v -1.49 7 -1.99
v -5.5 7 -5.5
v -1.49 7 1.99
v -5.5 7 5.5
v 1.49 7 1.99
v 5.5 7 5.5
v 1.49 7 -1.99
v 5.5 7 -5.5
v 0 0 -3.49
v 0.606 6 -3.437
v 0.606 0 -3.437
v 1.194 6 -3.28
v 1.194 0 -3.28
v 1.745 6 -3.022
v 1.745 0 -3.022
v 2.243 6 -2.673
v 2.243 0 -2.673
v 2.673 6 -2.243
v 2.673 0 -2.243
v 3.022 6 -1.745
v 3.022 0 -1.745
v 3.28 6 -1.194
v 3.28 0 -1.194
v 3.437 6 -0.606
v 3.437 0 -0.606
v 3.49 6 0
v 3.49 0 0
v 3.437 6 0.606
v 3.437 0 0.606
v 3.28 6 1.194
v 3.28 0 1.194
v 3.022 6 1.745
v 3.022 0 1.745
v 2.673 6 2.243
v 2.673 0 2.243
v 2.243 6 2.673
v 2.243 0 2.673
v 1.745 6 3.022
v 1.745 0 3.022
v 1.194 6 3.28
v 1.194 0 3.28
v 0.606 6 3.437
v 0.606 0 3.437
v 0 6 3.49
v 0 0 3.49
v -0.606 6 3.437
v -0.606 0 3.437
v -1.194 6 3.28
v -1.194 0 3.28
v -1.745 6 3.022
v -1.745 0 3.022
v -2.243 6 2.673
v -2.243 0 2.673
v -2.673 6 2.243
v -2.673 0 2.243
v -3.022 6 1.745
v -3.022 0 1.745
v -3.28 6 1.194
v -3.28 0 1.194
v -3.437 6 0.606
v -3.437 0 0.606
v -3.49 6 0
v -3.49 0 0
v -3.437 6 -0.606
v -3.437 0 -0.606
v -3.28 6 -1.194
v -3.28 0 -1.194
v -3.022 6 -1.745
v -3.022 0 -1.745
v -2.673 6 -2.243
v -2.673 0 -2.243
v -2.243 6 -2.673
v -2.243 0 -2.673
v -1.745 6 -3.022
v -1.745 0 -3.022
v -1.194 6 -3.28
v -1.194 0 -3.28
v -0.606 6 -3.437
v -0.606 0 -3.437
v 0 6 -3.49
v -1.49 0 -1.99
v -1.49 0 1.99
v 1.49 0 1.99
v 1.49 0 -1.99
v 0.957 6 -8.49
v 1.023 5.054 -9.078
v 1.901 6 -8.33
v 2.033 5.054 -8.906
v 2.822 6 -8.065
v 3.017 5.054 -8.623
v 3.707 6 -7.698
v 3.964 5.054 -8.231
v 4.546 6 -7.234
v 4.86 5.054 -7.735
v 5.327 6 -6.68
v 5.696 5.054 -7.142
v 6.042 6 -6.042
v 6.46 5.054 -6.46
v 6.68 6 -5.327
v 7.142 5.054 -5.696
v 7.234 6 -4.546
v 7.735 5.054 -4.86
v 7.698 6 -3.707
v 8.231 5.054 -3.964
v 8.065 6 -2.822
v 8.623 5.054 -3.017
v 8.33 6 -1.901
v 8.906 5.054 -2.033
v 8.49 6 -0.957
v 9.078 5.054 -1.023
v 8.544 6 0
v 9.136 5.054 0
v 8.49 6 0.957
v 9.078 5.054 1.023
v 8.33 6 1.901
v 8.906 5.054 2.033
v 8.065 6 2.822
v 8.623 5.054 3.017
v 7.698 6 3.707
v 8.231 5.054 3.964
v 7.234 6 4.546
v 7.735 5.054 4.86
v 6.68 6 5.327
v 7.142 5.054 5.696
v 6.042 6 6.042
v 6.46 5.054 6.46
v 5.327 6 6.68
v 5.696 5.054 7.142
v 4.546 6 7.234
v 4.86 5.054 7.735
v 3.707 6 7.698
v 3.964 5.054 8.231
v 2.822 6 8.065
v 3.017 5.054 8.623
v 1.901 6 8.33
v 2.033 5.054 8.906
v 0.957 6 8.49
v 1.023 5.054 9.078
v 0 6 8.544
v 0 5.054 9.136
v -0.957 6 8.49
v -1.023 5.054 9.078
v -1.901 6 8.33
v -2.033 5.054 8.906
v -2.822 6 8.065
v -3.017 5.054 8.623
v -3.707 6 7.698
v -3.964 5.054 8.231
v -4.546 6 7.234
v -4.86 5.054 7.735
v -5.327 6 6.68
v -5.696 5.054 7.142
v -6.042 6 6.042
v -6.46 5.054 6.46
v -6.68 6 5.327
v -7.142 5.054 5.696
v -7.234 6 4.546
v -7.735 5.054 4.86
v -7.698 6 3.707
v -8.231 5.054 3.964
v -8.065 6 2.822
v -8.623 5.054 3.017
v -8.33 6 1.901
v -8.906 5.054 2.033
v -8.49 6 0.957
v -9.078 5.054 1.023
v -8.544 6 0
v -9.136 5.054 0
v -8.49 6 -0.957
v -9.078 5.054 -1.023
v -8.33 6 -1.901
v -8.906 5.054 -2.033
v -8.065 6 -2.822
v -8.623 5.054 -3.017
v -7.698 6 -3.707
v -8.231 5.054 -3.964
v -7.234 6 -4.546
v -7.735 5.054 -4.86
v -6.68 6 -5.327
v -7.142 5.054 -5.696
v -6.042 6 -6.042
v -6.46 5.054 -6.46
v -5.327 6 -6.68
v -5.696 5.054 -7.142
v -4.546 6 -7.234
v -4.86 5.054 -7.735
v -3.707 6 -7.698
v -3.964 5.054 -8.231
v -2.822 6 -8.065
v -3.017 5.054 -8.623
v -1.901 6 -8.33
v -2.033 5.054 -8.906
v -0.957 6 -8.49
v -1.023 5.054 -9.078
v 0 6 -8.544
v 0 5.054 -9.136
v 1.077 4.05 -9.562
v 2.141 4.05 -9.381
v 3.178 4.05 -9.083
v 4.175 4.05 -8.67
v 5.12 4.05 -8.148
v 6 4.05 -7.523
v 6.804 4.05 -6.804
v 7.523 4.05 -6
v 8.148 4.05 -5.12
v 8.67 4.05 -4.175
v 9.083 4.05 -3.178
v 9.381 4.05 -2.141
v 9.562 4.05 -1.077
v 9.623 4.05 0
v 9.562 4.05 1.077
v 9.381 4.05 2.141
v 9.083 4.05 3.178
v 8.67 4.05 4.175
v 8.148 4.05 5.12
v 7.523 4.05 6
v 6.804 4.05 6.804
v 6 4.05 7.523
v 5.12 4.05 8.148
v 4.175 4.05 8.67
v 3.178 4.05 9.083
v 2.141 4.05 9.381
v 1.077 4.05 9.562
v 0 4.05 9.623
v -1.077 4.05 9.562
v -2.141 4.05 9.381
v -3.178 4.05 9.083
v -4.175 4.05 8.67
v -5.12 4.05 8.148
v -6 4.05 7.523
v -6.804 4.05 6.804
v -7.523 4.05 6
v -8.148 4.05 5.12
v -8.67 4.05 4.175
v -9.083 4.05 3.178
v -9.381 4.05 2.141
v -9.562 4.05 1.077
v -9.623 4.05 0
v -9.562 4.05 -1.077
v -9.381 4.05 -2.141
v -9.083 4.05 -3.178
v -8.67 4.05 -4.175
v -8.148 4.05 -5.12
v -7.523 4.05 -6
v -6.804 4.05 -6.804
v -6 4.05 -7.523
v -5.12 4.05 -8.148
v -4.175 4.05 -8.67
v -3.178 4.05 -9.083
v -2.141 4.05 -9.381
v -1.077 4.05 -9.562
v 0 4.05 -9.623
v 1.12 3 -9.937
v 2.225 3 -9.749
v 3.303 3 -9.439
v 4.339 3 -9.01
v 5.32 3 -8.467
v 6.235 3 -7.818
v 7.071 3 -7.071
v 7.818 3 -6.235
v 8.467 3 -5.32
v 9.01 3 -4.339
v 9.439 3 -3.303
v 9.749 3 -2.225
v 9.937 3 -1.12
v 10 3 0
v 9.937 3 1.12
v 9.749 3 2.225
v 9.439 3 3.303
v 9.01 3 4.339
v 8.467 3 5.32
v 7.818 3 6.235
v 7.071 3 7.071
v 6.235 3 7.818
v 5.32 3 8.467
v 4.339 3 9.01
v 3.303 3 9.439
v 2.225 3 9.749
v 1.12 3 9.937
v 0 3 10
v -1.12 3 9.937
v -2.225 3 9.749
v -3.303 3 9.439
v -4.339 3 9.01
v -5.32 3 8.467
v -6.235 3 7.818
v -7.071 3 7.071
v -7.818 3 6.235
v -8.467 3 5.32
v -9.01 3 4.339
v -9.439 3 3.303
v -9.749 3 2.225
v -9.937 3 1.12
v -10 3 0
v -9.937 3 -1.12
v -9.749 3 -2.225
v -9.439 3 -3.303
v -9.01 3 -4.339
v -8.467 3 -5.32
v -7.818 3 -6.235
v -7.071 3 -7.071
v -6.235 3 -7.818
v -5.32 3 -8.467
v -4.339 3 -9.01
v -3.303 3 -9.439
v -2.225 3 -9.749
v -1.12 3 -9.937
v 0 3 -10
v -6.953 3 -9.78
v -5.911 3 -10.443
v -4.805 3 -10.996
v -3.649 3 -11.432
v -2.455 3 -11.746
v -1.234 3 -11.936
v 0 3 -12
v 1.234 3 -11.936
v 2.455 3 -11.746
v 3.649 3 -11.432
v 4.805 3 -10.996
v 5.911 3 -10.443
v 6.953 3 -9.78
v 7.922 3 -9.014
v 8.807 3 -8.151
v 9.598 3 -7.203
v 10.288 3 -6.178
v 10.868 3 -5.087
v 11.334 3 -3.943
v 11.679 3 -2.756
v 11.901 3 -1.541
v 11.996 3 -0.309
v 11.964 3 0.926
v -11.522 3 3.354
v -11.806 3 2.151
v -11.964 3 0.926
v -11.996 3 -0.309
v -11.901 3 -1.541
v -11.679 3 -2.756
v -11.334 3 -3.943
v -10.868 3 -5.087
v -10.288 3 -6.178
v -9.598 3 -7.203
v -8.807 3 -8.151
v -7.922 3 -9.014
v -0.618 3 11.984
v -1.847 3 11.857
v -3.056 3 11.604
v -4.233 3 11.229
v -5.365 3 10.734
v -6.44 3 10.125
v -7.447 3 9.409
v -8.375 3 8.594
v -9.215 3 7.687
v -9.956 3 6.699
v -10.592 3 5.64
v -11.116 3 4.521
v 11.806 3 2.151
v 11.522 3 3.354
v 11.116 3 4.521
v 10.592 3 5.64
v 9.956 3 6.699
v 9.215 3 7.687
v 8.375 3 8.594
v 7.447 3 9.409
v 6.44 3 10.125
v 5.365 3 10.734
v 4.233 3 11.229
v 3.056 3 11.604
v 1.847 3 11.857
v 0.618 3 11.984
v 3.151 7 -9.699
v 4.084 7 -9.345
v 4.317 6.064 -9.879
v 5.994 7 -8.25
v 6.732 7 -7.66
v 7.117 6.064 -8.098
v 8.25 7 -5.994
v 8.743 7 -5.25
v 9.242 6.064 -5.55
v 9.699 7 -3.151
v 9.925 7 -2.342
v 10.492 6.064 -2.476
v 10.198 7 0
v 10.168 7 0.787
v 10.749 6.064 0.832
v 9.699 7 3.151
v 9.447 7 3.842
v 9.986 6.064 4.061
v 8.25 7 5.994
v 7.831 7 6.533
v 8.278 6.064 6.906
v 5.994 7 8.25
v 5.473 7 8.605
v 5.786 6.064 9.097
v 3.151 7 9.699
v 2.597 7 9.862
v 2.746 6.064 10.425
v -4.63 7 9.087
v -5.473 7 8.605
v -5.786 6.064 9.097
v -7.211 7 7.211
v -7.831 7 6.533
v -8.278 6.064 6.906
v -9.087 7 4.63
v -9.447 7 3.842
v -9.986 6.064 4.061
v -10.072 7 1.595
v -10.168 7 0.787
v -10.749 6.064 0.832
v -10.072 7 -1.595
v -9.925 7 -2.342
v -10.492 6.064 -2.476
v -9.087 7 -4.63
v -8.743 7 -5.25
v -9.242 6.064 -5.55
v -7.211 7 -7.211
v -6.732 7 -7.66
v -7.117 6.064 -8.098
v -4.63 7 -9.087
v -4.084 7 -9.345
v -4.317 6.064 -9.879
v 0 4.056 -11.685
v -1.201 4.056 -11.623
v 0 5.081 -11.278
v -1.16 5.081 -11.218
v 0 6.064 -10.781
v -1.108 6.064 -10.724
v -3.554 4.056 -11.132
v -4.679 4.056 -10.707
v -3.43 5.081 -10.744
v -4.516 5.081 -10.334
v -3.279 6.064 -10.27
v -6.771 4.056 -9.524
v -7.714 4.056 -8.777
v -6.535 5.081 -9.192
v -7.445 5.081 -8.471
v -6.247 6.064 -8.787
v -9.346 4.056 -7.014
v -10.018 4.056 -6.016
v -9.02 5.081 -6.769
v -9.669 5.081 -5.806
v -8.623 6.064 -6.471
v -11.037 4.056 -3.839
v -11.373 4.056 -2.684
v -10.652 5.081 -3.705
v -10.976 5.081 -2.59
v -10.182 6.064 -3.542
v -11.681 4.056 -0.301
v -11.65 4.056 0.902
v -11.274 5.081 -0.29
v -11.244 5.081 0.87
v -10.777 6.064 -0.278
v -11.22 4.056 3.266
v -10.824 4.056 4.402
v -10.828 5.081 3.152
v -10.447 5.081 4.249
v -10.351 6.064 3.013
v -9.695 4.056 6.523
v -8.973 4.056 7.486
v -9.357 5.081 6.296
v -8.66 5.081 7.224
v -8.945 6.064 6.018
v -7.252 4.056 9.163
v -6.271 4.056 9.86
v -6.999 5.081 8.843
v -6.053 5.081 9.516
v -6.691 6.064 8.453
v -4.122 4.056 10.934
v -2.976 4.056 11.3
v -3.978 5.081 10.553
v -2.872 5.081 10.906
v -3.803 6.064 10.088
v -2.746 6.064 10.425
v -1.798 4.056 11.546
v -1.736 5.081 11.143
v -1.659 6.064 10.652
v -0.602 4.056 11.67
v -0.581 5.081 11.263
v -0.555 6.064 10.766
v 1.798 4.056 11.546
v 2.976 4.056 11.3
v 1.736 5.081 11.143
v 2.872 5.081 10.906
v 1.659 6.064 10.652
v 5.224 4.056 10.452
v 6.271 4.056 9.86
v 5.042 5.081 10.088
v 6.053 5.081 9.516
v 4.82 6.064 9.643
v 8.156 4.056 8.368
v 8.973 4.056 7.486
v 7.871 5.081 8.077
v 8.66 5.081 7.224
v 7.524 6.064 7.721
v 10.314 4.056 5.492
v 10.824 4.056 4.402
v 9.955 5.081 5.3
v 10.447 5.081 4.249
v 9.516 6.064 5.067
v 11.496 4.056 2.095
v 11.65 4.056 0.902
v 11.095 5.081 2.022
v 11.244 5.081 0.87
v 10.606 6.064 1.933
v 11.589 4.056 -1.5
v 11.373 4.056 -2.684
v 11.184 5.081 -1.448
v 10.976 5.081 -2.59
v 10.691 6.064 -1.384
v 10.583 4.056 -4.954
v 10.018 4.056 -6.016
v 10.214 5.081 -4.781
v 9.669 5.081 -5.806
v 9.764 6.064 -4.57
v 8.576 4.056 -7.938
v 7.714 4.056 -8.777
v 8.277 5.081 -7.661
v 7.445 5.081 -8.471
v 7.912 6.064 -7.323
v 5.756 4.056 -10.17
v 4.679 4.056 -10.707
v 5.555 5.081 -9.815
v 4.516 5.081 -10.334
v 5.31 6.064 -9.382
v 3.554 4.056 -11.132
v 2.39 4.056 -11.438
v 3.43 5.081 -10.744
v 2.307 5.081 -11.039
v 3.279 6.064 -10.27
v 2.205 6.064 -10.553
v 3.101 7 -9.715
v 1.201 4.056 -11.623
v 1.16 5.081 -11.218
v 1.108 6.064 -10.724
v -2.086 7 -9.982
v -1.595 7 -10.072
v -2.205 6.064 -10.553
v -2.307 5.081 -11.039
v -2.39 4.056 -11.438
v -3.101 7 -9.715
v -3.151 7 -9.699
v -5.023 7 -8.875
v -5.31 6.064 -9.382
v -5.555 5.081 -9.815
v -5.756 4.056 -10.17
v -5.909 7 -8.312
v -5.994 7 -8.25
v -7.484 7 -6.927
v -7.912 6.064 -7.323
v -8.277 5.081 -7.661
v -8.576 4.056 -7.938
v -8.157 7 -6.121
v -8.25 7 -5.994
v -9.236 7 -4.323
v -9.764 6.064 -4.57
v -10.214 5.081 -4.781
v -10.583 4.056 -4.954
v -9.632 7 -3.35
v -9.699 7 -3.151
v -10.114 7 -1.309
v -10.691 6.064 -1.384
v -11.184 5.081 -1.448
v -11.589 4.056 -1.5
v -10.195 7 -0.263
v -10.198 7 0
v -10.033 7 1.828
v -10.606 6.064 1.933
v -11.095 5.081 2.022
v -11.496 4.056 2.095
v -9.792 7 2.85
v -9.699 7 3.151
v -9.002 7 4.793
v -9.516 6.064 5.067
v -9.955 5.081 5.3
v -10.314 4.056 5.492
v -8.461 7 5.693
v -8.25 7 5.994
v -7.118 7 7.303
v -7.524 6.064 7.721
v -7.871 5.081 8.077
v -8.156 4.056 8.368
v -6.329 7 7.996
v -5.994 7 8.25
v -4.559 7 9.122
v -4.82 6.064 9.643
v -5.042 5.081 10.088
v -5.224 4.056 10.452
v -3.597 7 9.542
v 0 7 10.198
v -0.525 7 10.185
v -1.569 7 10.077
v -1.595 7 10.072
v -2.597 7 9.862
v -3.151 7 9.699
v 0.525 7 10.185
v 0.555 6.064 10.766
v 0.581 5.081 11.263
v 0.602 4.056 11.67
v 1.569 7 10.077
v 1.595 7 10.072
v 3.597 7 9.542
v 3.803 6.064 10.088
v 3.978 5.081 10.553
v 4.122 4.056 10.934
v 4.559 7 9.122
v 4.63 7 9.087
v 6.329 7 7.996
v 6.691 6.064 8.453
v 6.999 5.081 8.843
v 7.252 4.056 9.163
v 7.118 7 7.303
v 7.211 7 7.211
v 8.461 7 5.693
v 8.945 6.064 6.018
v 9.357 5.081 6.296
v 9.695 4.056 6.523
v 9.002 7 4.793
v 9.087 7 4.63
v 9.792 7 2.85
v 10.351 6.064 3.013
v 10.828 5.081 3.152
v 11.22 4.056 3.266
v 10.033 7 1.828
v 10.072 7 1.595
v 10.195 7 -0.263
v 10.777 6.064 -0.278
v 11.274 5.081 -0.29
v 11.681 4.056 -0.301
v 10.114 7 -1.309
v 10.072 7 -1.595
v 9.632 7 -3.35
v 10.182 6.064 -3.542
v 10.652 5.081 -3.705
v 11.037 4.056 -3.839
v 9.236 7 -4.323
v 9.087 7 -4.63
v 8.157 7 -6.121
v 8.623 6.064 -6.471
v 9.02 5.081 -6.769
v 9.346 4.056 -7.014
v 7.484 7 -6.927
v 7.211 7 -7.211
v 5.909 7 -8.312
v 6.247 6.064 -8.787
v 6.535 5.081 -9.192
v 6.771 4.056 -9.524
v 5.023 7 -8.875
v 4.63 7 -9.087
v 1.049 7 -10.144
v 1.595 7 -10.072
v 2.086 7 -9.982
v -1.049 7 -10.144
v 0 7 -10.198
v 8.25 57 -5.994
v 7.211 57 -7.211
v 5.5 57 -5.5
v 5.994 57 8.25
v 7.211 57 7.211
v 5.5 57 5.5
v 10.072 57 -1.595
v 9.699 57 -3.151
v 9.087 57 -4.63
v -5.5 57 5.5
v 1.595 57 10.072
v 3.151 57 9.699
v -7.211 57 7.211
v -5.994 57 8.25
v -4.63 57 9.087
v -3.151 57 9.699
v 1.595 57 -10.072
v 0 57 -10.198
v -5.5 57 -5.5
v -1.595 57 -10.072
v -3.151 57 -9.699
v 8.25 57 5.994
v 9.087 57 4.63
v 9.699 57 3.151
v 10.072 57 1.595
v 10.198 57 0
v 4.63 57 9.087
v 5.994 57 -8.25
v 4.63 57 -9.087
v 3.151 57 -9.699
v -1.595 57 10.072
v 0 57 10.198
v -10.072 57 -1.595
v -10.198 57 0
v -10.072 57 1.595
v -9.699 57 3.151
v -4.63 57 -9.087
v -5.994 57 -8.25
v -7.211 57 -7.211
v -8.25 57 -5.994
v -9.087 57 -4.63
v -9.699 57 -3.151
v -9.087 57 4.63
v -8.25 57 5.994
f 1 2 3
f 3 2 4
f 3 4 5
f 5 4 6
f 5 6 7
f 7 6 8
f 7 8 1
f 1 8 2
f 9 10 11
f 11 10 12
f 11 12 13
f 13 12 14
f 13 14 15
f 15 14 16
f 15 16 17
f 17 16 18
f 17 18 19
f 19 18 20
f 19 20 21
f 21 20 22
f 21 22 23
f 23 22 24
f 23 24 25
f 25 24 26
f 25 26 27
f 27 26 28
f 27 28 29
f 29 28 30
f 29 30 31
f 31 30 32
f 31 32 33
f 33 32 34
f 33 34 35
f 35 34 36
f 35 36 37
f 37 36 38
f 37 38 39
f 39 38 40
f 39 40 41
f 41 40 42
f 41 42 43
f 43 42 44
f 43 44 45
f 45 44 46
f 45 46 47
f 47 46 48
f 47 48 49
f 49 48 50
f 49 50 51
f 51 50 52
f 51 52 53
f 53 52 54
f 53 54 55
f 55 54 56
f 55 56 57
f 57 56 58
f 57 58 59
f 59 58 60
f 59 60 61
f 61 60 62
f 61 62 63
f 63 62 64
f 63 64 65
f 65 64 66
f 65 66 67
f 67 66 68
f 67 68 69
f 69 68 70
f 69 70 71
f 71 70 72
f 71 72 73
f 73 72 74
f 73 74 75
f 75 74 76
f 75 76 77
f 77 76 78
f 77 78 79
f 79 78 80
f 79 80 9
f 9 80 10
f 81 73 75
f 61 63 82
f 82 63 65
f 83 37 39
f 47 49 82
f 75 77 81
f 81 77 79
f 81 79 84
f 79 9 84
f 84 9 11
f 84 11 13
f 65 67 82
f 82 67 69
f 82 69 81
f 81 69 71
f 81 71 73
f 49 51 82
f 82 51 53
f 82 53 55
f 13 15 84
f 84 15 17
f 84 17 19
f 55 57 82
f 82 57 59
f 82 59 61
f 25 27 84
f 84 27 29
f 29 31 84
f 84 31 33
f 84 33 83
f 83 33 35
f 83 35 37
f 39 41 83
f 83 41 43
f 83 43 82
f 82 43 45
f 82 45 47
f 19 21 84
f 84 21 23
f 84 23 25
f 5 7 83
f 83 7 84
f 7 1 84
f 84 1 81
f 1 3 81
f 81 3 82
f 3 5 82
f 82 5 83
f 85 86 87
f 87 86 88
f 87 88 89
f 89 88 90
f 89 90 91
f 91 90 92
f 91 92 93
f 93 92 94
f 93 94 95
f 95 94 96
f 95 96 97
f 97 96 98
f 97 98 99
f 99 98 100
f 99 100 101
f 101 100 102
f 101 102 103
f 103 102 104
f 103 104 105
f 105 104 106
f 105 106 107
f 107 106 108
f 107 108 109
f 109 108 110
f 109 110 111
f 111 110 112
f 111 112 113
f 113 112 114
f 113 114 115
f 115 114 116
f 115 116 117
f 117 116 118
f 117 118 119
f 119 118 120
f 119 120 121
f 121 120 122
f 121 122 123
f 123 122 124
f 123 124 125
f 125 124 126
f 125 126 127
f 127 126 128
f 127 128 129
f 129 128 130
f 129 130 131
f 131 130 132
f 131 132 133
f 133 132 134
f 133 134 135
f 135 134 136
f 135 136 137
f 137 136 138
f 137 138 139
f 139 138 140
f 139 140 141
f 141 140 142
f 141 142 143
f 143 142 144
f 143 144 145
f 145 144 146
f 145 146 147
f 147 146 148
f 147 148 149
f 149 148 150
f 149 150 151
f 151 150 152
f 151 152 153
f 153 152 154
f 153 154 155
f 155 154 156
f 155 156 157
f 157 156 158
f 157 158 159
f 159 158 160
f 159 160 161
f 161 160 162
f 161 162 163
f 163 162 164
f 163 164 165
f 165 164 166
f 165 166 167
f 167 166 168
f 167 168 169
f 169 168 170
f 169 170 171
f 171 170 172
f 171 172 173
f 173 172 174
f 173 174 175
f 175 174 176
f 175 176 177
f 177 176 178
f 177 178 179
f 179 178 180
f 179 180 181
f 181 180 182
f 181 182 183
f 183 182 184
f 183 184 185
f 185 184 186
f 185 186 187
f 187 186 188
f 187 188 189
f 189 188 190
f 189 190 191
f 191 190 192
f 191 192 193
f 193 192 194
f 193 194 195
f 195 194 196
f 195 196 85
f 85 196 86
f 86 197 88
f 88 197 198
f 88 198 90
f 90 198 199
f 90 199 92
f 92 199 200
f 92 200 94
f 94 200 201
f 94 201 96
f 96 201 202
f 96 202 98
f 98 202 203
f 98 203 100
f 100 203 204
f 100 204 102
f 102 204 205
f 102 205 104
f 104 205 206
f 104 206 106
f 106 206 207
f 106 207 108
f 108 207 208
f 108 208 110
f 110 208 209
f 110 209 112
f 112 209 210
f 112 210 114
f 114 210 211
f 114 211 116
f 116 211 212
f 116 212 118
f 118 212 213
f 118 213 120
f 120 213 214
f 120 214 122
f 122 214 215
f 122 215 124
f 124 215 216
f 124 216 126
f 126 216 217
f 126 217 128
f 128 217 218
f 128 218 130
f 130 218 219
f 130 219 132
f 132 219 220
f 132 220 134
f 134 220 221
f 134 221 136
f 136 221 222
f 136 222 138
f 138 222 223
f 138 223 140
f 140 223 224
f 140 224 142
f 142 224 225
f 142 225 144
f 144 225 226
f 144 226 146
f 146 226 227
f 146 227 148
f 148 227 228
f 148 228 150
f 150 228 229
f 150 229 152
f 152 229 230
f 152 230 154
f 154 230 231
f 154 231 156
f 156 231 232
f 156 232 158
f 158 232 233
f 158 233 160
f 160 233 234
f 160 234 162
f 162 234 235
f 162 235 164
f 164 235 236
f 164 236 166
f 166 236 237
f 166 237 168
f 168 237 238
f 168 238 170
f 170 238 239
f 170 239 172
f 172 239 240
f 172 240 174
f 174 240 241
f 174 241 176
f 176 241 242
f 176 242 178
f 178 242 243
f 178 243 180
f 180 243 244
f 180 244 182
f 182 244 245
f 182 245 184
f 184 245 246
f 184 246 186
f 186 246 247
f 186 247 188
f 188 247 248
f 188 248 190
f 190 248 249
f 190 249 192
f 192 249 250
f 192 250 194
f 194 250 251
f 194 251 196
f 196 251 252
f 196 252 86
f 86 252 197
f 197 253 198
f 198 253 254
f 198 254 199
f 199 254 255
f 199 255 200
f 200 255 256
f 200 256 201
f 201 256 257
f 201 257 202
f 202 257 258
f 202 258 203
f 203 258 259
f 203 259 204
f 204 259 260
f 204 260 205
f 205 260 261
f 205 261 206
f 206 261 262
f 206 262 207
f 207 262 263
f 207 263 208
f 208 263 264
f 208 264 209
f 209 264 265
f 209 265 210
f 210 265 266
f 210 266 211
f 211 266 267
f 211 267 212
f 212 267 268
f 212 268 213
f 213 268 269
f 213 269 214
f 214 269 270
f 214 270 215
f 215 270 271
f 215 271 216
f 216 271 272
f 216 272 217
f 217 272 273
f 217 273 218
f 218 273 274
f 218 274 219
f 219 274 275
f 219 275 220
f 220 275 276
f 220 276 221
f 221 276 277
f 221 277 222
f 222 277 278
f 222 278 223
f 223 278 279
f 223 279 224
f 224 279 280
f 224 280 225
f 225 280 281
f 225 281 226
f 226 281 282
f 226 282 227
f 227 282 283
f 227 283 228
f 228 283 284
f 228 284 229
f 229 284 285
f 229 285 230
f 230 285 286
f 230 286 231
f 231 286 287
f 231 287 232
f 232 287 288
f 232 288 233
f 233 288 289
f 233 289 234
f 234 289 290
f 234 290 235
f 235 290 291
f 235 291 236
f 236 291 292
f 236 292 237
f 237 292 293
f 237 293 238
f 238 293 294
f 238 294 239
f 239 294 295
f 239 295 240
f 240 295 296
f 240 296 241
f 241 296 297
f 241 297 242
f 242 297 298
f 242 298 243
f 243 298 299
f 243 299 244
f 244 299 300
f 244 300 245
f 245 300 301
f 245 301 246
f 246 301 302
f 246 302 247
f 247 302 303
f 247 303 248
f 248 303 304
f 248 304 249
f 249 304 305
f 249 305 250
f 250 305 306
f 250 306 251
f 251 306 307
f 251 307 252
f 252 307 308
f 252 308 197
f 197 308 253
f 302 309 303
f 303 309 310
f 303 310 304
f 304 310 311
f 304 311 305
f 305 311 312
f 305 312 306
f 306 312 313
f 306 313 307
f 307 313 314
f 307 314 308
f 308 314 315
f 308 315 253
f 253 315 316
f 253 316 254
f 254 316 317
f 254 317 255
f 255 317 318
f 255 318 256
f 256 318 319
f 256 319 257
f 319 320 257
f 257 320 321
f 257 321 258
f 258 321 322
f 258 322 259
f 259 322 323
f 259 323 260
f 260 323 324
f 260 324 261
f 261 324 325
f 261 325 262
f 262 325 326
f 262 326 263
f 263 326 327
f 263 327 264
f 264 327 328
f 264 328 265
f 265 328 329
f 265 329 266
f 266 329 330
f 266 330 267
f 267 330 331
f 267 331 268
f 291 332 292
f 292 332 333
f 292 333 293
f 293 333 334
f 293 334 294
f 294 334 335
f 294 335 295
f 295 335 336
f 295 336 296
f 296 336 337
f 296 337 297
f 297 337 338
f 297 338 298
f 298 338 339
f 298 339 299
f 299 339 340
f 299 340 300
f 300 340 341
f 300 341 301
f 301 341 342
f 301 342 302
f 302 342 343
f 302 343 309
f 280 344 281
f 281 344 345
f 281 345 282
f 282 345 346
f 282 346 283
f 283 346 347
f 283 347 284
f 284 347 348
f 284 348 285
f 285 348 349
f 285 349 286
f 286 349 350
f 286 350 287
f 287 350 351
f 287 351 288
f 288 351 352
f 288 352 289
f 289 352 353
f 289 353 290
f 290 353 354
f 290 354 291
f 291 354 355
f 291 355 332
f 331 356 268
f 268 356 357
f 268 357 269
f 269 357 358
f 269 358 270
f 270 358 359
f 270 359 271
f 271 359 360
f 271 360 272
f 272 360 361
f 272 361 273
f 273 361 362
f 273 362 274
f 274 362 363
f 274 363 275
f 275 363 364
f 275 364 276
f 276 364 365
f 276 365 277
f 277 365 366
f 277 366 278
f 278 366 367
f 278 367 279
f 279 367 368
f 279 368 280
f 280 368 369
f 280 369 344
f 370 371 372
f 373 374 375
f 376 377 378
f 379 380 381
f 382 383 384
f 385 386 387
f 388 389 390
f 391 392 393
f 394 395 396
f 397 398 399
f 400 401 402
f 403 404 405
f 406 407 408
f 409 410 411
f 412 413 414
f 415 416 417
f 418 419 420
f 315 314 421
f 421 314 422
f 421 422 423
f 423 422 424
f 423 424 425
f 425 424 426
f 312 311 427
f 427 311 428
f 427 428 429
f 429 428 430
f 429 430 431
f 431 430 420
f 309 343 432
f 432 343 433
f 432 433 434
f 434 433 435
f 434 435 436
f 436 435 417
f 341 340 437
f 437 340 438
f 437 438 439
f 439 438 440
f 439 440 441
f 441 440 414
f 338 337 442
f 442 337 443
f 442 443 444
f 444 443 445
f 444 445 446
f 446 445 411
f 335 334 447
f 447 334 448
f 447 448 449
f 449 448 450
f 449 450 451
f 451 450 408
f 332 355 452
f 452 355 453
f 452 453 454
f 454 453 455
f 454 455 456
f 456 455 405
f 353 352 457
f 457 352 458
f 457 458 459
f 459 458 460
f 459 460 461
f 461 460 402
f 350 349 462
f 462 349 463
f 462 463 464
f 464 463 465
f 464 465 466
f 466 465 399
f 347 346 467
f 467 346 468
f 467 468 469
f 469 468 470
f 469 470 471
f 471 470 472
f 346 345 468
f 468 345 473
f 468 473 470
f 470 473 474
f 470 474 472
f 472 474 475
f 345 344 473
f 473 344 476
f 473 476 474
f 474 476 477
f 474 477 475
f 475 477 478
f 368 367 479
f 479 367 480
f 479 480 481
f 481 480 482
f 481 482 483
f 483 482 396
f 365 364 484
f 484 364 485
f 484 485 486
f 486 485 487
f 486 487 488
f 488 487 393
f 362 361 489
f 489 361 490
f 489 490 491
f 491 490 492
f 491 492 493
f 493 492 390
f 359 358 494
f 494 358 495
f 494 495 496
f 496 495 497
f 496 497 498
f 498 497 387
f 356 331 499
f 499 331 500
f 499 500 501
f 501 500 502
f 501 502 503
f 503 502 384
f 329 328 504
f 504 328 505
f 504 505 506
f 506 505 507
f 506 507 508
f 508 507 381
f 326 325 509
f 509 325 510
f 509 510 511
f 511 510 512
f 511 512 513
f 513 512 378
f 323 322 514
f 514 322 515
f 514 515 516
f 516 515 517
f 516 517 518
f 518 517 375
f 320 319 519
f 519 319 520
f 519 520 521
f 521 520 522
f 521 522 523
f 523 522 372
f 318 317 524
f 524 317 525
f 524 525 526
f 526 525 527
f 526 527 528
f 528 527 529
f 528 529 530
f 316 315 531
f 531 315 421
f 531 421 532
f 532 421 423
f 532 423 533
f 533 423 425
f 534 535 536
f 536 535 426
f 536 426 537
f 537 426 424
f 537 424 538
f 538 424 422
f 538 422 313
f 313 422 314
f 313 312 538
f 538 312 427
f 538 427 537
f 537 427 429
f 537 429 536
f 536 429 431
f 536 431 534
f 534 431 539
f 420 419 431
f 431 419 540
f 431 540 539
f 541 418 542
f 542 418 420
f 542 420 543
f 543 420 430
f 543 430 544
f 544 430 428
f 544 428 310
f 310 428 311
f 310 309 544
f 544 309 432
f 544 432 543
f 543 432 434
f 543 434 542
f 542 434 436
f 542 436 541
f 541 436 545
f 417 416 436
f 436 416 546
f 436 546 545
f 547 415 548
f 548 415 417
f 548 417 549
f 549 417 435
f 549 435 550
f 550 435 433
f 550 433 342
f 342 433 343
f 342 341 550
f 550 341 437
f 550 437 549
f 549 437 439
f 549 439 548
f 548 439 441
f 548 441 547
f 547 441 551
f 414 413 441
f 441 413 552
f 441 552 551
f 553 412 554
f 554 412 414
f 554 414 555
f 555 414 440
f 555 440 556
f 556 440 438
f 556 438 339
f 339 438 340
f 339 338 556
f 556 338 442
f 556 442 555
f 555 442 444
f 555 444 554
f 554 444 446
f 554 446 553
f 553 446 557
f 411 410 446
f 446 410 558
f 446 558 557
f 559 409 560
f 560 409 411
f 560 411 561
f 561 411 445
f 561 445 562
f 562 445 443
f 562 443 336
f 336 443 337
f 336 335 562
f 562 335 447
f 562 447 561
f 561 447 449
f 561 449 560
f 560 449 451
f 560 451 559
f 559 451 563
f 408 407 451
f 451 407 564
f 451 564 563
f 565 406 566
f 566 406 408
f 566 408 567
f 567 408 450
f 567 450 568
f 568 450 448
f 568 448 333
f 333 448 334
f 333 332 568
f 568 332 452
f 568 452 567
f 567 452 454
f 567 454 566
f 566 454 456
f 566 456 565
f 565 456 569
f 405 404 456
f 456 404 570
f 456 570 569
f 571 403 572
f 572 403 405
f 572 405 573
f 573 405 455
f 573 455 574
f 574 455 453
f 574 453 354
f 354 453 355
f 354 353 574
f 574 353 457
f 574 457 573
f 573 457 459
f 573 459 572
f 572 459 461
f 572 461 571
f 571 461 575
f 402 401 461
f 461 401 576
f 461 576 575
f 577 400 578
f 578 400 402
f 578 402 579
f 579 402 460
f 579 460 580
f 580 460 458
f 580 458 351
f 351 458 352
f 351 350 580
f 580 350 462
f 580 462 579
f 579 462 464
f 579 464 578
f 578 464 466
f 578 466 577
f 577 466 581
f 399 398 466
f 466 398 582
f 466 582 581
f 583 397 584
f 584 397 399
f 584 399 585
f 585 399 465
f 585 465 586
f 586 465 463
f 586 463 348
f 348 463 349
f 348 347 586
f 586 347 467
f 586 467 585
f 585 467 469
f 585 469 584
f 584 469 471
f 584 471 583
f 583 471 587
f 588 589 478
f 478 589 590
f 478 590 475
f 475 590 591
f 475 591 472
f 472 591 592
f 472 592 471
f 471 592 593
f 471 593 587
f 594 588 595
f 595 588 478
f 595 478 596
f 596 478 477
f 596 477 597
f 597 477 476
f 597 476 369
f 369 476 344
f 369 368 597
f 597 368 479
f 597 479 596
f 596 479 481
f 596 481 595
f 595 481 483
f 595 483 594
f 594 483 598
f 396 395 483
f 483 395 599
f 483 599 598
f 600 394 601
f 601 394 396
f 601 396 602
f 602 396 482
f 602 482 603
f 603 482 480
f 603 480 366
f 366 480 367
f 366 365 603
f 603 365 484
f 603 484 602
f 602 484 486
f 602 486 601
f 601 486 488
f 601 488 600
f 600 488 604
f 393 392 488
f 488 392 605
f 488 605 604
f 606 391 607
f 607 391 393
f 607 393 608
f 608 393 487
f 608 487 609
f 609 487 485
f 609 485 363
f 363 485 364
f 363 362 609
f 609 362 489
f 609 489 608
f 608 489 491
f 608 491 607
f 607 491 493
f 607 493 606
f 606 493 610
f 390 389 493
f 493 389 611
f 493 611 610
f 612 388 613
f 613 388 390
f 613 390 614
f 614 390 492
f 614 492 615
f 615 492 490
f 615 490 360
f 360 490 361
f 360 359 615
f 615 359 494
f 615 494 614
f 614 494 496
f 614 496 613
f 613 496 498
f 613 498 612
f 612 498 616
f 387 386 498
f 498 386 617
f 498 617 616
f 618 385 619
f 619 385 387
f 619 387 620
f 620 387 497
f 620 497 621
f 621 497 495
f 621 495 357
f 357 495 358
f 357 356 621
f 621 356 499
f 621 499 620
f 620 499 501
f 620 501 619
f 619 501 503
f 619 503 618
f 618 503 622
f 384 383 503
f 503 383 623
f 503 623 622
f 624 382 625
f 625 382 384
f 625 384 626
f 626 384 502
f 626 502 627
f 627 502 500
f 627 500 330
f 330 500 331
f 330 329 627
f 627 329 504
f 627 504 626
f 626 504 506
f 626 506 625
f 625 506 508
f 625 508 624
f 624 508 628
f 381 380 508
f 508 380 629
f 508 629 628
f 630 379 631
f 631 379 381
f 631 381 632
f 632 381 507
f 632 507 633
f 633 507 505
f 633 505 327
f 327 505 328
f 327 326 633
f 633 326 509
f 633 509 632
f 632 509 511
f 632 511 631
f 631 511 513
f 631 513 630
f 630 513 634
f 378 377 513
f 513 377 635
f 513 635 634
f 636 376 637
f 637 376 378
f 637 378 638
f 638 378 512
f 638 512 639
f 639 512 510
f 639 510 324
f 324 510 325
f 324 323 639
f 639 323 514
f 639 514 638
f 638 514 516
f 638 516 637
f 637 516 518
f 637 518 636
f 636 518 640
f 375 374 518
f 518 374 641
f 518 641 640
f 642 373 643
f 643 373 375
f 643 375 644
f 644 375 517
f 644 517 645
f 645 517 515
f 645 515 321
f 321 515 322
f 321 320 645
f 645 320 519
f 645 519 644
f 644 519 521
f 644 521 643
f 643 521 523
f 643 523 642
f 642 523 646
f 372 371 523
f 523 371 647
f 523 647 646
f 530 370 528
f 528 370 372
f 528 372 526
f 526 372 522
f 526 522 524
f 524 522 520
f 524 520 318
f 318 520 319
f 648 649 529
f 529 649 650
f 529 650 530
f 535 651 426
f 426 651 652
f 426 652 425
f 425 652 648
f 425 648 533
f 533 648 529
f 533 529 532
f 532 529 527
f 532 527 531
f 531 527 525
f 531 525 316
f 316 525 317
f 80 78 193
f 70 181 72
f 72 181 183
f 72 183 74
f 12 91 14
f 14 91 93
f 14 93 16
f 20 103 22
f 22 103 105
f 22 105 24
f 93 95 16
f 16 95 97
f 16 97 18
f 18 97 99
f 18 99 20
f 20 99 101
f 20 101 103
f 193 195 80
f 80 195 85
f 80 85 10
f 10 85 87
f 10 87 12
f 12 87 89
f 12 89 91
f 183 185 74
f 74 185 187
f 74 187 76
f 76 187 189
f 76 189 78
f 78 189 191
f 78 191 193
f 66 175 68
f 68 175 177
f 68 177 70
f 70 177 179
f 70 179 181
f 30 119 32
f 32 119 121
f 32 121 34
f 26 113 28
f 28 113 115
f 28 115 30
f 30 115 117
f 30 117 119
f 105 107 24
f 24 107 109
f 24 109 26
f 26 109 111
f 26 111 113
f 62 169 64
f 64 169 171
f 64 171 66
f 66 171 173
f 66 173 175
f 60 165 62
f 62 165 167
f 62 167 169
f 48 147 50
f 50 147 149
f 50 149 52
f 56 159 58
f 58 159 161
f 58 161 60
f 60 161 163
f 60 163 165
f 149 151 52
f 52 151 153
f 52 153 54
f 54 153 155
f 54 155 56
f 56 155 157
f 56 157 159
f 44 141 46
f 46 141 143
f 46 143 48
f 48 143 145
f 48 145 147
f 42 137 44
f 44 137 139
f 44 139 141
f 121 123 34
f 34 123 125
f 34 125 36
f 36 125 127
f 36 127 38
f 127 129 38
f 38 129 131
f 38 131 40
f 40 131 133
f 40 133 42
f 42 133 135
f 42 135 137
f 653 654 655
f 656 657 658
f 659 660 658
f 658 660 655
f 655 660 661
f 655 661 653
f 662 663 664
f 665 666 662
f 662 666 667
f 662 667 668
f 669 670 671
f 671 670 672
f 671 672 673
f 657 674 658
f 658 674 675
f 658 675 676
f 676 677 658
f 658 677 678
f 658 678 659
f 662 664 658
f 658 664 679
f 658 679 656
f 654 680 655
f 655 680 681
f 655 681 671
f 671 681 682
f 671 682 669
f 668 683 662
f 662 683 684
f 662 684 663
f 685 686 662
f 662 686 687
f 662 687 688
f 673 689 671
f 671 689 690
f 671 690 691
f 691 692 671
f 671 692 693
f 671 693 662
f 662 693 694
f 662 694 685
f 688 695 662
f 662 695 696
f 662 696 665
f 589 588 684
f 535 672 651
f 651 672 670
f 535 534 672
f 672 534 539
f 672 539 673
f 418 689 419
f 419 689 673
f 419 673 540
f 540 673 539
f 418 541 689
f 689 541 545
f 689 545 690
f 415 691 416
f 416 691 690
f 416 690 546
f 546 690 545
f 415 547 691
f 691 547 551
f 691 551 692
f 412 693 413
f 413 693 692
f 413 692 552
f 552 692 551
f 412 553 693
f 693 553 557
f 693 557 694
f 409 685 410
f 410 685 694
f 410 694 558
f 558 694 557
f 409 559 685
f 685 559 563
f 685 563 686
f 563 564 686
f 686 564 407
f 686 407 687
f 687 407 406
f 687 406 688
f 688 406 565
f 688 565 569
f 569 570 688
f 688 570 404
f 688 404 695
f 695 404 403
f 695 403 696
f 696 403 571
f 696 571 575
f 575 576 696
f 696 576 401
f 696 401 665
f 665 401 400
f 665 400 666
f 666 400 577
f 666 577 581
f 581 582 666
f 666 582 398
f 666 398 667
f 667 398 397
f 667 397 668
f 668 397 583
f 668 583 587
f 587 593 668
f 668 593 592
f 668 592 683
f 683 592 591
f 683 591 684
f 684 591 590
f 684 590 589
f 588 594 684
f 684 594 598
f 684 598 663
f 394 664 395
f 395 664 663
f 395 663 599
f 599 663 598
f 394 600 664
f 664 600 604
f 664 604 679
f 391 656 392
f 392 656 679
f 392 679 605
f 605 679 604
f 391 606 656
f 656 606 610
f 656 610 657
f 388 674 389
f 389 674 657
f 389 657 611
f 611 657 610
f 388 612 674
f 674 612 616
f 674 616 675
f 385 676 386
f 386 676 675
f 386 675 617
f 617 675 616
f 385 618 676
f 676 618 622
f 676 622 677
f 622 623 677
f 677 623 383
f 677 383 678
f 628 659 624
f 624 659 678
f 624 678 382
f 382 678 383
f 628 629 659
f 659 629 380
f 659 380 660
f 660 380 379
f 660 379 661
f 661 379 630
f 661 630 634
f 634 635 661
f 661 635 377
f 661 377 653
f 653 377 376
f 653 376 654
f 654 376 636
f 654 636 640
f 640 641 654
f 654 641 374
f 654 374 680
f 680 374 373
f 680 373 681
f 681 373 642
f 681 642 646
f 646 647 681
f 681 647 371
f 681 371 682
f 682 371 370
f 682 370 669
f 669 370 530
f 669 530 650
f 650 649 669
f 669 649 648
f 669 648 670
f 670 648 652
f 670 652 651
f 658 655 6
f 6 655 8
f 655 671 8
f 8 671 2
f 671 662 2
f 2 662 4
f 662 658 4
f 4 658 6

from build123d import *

# Parameters (mm, degrees)
SKETCH1_R           = 3.49
SKETCH1_W           = 2.98
SKETCH1_H           = 3.98
BOSS_EXTRUDE2_DEPTH = 7
SKETCH3_R           = 10.198039027
SKETCH3_W           = 11
SKETCH3_H           = 11
BOSS_EXTRUDE3_DEPTH = 50


with BuildPart() as part:
    # Sketch1 → Boss-Extrude2 (new body)
    with BuildSketch(Plane(origin=(0, 0, 0), x_dir=(1, 0, 0), z_dir=(0, 1, 0))):
        Circle(SKETCH1_R)
        Rectangle(SKETCH1_W, SKETCH1_H, mode=Mode.SUBTRACT)
    extrude(amount=BOSS_EXTRUDE2_DEPTH)

    # Sketch2 → Revolve1 (revolve)
    with BuildSketch(Plane(origin=(0, 0, 0), x_dir=(0, 0, -1), z_dir=(1, 0, 0))):
        with BuildLine():
            Line((10, 3), (12, 3))
            ThreePointArc((12, 3), (11.277776118, 5.080528106), (10.198039027, 7))
            Line((10.198039027, 7), (3.49, 7))
            Line((3.49, 7), (3.49, 6))
            Line((3.49, 6), (8.544003745, 6))
            ThreePointArc((8.544003745, 6), (9.392551236, 4.558506474), (10, 3))
        make_face()
    revolve(axis=Axis((0, 0.002779656, 0), (0, 1, 0)))

    # Sketch3 → Boss-Extrude3 (add)
    with BuildSketch(Plane(origin=(0, 7, 0), x_dir=(1, 0, 0), z_dir=(0, 1, 0))):
        Circle(SKETCH3_R)
        Rectangle(SKETCH3_W, SKETCH3_H, mode=Mode.SUBTRACT)
    extrude(amount=BOSS_EXTRUDE3_DEPTH)


solid = part.part
